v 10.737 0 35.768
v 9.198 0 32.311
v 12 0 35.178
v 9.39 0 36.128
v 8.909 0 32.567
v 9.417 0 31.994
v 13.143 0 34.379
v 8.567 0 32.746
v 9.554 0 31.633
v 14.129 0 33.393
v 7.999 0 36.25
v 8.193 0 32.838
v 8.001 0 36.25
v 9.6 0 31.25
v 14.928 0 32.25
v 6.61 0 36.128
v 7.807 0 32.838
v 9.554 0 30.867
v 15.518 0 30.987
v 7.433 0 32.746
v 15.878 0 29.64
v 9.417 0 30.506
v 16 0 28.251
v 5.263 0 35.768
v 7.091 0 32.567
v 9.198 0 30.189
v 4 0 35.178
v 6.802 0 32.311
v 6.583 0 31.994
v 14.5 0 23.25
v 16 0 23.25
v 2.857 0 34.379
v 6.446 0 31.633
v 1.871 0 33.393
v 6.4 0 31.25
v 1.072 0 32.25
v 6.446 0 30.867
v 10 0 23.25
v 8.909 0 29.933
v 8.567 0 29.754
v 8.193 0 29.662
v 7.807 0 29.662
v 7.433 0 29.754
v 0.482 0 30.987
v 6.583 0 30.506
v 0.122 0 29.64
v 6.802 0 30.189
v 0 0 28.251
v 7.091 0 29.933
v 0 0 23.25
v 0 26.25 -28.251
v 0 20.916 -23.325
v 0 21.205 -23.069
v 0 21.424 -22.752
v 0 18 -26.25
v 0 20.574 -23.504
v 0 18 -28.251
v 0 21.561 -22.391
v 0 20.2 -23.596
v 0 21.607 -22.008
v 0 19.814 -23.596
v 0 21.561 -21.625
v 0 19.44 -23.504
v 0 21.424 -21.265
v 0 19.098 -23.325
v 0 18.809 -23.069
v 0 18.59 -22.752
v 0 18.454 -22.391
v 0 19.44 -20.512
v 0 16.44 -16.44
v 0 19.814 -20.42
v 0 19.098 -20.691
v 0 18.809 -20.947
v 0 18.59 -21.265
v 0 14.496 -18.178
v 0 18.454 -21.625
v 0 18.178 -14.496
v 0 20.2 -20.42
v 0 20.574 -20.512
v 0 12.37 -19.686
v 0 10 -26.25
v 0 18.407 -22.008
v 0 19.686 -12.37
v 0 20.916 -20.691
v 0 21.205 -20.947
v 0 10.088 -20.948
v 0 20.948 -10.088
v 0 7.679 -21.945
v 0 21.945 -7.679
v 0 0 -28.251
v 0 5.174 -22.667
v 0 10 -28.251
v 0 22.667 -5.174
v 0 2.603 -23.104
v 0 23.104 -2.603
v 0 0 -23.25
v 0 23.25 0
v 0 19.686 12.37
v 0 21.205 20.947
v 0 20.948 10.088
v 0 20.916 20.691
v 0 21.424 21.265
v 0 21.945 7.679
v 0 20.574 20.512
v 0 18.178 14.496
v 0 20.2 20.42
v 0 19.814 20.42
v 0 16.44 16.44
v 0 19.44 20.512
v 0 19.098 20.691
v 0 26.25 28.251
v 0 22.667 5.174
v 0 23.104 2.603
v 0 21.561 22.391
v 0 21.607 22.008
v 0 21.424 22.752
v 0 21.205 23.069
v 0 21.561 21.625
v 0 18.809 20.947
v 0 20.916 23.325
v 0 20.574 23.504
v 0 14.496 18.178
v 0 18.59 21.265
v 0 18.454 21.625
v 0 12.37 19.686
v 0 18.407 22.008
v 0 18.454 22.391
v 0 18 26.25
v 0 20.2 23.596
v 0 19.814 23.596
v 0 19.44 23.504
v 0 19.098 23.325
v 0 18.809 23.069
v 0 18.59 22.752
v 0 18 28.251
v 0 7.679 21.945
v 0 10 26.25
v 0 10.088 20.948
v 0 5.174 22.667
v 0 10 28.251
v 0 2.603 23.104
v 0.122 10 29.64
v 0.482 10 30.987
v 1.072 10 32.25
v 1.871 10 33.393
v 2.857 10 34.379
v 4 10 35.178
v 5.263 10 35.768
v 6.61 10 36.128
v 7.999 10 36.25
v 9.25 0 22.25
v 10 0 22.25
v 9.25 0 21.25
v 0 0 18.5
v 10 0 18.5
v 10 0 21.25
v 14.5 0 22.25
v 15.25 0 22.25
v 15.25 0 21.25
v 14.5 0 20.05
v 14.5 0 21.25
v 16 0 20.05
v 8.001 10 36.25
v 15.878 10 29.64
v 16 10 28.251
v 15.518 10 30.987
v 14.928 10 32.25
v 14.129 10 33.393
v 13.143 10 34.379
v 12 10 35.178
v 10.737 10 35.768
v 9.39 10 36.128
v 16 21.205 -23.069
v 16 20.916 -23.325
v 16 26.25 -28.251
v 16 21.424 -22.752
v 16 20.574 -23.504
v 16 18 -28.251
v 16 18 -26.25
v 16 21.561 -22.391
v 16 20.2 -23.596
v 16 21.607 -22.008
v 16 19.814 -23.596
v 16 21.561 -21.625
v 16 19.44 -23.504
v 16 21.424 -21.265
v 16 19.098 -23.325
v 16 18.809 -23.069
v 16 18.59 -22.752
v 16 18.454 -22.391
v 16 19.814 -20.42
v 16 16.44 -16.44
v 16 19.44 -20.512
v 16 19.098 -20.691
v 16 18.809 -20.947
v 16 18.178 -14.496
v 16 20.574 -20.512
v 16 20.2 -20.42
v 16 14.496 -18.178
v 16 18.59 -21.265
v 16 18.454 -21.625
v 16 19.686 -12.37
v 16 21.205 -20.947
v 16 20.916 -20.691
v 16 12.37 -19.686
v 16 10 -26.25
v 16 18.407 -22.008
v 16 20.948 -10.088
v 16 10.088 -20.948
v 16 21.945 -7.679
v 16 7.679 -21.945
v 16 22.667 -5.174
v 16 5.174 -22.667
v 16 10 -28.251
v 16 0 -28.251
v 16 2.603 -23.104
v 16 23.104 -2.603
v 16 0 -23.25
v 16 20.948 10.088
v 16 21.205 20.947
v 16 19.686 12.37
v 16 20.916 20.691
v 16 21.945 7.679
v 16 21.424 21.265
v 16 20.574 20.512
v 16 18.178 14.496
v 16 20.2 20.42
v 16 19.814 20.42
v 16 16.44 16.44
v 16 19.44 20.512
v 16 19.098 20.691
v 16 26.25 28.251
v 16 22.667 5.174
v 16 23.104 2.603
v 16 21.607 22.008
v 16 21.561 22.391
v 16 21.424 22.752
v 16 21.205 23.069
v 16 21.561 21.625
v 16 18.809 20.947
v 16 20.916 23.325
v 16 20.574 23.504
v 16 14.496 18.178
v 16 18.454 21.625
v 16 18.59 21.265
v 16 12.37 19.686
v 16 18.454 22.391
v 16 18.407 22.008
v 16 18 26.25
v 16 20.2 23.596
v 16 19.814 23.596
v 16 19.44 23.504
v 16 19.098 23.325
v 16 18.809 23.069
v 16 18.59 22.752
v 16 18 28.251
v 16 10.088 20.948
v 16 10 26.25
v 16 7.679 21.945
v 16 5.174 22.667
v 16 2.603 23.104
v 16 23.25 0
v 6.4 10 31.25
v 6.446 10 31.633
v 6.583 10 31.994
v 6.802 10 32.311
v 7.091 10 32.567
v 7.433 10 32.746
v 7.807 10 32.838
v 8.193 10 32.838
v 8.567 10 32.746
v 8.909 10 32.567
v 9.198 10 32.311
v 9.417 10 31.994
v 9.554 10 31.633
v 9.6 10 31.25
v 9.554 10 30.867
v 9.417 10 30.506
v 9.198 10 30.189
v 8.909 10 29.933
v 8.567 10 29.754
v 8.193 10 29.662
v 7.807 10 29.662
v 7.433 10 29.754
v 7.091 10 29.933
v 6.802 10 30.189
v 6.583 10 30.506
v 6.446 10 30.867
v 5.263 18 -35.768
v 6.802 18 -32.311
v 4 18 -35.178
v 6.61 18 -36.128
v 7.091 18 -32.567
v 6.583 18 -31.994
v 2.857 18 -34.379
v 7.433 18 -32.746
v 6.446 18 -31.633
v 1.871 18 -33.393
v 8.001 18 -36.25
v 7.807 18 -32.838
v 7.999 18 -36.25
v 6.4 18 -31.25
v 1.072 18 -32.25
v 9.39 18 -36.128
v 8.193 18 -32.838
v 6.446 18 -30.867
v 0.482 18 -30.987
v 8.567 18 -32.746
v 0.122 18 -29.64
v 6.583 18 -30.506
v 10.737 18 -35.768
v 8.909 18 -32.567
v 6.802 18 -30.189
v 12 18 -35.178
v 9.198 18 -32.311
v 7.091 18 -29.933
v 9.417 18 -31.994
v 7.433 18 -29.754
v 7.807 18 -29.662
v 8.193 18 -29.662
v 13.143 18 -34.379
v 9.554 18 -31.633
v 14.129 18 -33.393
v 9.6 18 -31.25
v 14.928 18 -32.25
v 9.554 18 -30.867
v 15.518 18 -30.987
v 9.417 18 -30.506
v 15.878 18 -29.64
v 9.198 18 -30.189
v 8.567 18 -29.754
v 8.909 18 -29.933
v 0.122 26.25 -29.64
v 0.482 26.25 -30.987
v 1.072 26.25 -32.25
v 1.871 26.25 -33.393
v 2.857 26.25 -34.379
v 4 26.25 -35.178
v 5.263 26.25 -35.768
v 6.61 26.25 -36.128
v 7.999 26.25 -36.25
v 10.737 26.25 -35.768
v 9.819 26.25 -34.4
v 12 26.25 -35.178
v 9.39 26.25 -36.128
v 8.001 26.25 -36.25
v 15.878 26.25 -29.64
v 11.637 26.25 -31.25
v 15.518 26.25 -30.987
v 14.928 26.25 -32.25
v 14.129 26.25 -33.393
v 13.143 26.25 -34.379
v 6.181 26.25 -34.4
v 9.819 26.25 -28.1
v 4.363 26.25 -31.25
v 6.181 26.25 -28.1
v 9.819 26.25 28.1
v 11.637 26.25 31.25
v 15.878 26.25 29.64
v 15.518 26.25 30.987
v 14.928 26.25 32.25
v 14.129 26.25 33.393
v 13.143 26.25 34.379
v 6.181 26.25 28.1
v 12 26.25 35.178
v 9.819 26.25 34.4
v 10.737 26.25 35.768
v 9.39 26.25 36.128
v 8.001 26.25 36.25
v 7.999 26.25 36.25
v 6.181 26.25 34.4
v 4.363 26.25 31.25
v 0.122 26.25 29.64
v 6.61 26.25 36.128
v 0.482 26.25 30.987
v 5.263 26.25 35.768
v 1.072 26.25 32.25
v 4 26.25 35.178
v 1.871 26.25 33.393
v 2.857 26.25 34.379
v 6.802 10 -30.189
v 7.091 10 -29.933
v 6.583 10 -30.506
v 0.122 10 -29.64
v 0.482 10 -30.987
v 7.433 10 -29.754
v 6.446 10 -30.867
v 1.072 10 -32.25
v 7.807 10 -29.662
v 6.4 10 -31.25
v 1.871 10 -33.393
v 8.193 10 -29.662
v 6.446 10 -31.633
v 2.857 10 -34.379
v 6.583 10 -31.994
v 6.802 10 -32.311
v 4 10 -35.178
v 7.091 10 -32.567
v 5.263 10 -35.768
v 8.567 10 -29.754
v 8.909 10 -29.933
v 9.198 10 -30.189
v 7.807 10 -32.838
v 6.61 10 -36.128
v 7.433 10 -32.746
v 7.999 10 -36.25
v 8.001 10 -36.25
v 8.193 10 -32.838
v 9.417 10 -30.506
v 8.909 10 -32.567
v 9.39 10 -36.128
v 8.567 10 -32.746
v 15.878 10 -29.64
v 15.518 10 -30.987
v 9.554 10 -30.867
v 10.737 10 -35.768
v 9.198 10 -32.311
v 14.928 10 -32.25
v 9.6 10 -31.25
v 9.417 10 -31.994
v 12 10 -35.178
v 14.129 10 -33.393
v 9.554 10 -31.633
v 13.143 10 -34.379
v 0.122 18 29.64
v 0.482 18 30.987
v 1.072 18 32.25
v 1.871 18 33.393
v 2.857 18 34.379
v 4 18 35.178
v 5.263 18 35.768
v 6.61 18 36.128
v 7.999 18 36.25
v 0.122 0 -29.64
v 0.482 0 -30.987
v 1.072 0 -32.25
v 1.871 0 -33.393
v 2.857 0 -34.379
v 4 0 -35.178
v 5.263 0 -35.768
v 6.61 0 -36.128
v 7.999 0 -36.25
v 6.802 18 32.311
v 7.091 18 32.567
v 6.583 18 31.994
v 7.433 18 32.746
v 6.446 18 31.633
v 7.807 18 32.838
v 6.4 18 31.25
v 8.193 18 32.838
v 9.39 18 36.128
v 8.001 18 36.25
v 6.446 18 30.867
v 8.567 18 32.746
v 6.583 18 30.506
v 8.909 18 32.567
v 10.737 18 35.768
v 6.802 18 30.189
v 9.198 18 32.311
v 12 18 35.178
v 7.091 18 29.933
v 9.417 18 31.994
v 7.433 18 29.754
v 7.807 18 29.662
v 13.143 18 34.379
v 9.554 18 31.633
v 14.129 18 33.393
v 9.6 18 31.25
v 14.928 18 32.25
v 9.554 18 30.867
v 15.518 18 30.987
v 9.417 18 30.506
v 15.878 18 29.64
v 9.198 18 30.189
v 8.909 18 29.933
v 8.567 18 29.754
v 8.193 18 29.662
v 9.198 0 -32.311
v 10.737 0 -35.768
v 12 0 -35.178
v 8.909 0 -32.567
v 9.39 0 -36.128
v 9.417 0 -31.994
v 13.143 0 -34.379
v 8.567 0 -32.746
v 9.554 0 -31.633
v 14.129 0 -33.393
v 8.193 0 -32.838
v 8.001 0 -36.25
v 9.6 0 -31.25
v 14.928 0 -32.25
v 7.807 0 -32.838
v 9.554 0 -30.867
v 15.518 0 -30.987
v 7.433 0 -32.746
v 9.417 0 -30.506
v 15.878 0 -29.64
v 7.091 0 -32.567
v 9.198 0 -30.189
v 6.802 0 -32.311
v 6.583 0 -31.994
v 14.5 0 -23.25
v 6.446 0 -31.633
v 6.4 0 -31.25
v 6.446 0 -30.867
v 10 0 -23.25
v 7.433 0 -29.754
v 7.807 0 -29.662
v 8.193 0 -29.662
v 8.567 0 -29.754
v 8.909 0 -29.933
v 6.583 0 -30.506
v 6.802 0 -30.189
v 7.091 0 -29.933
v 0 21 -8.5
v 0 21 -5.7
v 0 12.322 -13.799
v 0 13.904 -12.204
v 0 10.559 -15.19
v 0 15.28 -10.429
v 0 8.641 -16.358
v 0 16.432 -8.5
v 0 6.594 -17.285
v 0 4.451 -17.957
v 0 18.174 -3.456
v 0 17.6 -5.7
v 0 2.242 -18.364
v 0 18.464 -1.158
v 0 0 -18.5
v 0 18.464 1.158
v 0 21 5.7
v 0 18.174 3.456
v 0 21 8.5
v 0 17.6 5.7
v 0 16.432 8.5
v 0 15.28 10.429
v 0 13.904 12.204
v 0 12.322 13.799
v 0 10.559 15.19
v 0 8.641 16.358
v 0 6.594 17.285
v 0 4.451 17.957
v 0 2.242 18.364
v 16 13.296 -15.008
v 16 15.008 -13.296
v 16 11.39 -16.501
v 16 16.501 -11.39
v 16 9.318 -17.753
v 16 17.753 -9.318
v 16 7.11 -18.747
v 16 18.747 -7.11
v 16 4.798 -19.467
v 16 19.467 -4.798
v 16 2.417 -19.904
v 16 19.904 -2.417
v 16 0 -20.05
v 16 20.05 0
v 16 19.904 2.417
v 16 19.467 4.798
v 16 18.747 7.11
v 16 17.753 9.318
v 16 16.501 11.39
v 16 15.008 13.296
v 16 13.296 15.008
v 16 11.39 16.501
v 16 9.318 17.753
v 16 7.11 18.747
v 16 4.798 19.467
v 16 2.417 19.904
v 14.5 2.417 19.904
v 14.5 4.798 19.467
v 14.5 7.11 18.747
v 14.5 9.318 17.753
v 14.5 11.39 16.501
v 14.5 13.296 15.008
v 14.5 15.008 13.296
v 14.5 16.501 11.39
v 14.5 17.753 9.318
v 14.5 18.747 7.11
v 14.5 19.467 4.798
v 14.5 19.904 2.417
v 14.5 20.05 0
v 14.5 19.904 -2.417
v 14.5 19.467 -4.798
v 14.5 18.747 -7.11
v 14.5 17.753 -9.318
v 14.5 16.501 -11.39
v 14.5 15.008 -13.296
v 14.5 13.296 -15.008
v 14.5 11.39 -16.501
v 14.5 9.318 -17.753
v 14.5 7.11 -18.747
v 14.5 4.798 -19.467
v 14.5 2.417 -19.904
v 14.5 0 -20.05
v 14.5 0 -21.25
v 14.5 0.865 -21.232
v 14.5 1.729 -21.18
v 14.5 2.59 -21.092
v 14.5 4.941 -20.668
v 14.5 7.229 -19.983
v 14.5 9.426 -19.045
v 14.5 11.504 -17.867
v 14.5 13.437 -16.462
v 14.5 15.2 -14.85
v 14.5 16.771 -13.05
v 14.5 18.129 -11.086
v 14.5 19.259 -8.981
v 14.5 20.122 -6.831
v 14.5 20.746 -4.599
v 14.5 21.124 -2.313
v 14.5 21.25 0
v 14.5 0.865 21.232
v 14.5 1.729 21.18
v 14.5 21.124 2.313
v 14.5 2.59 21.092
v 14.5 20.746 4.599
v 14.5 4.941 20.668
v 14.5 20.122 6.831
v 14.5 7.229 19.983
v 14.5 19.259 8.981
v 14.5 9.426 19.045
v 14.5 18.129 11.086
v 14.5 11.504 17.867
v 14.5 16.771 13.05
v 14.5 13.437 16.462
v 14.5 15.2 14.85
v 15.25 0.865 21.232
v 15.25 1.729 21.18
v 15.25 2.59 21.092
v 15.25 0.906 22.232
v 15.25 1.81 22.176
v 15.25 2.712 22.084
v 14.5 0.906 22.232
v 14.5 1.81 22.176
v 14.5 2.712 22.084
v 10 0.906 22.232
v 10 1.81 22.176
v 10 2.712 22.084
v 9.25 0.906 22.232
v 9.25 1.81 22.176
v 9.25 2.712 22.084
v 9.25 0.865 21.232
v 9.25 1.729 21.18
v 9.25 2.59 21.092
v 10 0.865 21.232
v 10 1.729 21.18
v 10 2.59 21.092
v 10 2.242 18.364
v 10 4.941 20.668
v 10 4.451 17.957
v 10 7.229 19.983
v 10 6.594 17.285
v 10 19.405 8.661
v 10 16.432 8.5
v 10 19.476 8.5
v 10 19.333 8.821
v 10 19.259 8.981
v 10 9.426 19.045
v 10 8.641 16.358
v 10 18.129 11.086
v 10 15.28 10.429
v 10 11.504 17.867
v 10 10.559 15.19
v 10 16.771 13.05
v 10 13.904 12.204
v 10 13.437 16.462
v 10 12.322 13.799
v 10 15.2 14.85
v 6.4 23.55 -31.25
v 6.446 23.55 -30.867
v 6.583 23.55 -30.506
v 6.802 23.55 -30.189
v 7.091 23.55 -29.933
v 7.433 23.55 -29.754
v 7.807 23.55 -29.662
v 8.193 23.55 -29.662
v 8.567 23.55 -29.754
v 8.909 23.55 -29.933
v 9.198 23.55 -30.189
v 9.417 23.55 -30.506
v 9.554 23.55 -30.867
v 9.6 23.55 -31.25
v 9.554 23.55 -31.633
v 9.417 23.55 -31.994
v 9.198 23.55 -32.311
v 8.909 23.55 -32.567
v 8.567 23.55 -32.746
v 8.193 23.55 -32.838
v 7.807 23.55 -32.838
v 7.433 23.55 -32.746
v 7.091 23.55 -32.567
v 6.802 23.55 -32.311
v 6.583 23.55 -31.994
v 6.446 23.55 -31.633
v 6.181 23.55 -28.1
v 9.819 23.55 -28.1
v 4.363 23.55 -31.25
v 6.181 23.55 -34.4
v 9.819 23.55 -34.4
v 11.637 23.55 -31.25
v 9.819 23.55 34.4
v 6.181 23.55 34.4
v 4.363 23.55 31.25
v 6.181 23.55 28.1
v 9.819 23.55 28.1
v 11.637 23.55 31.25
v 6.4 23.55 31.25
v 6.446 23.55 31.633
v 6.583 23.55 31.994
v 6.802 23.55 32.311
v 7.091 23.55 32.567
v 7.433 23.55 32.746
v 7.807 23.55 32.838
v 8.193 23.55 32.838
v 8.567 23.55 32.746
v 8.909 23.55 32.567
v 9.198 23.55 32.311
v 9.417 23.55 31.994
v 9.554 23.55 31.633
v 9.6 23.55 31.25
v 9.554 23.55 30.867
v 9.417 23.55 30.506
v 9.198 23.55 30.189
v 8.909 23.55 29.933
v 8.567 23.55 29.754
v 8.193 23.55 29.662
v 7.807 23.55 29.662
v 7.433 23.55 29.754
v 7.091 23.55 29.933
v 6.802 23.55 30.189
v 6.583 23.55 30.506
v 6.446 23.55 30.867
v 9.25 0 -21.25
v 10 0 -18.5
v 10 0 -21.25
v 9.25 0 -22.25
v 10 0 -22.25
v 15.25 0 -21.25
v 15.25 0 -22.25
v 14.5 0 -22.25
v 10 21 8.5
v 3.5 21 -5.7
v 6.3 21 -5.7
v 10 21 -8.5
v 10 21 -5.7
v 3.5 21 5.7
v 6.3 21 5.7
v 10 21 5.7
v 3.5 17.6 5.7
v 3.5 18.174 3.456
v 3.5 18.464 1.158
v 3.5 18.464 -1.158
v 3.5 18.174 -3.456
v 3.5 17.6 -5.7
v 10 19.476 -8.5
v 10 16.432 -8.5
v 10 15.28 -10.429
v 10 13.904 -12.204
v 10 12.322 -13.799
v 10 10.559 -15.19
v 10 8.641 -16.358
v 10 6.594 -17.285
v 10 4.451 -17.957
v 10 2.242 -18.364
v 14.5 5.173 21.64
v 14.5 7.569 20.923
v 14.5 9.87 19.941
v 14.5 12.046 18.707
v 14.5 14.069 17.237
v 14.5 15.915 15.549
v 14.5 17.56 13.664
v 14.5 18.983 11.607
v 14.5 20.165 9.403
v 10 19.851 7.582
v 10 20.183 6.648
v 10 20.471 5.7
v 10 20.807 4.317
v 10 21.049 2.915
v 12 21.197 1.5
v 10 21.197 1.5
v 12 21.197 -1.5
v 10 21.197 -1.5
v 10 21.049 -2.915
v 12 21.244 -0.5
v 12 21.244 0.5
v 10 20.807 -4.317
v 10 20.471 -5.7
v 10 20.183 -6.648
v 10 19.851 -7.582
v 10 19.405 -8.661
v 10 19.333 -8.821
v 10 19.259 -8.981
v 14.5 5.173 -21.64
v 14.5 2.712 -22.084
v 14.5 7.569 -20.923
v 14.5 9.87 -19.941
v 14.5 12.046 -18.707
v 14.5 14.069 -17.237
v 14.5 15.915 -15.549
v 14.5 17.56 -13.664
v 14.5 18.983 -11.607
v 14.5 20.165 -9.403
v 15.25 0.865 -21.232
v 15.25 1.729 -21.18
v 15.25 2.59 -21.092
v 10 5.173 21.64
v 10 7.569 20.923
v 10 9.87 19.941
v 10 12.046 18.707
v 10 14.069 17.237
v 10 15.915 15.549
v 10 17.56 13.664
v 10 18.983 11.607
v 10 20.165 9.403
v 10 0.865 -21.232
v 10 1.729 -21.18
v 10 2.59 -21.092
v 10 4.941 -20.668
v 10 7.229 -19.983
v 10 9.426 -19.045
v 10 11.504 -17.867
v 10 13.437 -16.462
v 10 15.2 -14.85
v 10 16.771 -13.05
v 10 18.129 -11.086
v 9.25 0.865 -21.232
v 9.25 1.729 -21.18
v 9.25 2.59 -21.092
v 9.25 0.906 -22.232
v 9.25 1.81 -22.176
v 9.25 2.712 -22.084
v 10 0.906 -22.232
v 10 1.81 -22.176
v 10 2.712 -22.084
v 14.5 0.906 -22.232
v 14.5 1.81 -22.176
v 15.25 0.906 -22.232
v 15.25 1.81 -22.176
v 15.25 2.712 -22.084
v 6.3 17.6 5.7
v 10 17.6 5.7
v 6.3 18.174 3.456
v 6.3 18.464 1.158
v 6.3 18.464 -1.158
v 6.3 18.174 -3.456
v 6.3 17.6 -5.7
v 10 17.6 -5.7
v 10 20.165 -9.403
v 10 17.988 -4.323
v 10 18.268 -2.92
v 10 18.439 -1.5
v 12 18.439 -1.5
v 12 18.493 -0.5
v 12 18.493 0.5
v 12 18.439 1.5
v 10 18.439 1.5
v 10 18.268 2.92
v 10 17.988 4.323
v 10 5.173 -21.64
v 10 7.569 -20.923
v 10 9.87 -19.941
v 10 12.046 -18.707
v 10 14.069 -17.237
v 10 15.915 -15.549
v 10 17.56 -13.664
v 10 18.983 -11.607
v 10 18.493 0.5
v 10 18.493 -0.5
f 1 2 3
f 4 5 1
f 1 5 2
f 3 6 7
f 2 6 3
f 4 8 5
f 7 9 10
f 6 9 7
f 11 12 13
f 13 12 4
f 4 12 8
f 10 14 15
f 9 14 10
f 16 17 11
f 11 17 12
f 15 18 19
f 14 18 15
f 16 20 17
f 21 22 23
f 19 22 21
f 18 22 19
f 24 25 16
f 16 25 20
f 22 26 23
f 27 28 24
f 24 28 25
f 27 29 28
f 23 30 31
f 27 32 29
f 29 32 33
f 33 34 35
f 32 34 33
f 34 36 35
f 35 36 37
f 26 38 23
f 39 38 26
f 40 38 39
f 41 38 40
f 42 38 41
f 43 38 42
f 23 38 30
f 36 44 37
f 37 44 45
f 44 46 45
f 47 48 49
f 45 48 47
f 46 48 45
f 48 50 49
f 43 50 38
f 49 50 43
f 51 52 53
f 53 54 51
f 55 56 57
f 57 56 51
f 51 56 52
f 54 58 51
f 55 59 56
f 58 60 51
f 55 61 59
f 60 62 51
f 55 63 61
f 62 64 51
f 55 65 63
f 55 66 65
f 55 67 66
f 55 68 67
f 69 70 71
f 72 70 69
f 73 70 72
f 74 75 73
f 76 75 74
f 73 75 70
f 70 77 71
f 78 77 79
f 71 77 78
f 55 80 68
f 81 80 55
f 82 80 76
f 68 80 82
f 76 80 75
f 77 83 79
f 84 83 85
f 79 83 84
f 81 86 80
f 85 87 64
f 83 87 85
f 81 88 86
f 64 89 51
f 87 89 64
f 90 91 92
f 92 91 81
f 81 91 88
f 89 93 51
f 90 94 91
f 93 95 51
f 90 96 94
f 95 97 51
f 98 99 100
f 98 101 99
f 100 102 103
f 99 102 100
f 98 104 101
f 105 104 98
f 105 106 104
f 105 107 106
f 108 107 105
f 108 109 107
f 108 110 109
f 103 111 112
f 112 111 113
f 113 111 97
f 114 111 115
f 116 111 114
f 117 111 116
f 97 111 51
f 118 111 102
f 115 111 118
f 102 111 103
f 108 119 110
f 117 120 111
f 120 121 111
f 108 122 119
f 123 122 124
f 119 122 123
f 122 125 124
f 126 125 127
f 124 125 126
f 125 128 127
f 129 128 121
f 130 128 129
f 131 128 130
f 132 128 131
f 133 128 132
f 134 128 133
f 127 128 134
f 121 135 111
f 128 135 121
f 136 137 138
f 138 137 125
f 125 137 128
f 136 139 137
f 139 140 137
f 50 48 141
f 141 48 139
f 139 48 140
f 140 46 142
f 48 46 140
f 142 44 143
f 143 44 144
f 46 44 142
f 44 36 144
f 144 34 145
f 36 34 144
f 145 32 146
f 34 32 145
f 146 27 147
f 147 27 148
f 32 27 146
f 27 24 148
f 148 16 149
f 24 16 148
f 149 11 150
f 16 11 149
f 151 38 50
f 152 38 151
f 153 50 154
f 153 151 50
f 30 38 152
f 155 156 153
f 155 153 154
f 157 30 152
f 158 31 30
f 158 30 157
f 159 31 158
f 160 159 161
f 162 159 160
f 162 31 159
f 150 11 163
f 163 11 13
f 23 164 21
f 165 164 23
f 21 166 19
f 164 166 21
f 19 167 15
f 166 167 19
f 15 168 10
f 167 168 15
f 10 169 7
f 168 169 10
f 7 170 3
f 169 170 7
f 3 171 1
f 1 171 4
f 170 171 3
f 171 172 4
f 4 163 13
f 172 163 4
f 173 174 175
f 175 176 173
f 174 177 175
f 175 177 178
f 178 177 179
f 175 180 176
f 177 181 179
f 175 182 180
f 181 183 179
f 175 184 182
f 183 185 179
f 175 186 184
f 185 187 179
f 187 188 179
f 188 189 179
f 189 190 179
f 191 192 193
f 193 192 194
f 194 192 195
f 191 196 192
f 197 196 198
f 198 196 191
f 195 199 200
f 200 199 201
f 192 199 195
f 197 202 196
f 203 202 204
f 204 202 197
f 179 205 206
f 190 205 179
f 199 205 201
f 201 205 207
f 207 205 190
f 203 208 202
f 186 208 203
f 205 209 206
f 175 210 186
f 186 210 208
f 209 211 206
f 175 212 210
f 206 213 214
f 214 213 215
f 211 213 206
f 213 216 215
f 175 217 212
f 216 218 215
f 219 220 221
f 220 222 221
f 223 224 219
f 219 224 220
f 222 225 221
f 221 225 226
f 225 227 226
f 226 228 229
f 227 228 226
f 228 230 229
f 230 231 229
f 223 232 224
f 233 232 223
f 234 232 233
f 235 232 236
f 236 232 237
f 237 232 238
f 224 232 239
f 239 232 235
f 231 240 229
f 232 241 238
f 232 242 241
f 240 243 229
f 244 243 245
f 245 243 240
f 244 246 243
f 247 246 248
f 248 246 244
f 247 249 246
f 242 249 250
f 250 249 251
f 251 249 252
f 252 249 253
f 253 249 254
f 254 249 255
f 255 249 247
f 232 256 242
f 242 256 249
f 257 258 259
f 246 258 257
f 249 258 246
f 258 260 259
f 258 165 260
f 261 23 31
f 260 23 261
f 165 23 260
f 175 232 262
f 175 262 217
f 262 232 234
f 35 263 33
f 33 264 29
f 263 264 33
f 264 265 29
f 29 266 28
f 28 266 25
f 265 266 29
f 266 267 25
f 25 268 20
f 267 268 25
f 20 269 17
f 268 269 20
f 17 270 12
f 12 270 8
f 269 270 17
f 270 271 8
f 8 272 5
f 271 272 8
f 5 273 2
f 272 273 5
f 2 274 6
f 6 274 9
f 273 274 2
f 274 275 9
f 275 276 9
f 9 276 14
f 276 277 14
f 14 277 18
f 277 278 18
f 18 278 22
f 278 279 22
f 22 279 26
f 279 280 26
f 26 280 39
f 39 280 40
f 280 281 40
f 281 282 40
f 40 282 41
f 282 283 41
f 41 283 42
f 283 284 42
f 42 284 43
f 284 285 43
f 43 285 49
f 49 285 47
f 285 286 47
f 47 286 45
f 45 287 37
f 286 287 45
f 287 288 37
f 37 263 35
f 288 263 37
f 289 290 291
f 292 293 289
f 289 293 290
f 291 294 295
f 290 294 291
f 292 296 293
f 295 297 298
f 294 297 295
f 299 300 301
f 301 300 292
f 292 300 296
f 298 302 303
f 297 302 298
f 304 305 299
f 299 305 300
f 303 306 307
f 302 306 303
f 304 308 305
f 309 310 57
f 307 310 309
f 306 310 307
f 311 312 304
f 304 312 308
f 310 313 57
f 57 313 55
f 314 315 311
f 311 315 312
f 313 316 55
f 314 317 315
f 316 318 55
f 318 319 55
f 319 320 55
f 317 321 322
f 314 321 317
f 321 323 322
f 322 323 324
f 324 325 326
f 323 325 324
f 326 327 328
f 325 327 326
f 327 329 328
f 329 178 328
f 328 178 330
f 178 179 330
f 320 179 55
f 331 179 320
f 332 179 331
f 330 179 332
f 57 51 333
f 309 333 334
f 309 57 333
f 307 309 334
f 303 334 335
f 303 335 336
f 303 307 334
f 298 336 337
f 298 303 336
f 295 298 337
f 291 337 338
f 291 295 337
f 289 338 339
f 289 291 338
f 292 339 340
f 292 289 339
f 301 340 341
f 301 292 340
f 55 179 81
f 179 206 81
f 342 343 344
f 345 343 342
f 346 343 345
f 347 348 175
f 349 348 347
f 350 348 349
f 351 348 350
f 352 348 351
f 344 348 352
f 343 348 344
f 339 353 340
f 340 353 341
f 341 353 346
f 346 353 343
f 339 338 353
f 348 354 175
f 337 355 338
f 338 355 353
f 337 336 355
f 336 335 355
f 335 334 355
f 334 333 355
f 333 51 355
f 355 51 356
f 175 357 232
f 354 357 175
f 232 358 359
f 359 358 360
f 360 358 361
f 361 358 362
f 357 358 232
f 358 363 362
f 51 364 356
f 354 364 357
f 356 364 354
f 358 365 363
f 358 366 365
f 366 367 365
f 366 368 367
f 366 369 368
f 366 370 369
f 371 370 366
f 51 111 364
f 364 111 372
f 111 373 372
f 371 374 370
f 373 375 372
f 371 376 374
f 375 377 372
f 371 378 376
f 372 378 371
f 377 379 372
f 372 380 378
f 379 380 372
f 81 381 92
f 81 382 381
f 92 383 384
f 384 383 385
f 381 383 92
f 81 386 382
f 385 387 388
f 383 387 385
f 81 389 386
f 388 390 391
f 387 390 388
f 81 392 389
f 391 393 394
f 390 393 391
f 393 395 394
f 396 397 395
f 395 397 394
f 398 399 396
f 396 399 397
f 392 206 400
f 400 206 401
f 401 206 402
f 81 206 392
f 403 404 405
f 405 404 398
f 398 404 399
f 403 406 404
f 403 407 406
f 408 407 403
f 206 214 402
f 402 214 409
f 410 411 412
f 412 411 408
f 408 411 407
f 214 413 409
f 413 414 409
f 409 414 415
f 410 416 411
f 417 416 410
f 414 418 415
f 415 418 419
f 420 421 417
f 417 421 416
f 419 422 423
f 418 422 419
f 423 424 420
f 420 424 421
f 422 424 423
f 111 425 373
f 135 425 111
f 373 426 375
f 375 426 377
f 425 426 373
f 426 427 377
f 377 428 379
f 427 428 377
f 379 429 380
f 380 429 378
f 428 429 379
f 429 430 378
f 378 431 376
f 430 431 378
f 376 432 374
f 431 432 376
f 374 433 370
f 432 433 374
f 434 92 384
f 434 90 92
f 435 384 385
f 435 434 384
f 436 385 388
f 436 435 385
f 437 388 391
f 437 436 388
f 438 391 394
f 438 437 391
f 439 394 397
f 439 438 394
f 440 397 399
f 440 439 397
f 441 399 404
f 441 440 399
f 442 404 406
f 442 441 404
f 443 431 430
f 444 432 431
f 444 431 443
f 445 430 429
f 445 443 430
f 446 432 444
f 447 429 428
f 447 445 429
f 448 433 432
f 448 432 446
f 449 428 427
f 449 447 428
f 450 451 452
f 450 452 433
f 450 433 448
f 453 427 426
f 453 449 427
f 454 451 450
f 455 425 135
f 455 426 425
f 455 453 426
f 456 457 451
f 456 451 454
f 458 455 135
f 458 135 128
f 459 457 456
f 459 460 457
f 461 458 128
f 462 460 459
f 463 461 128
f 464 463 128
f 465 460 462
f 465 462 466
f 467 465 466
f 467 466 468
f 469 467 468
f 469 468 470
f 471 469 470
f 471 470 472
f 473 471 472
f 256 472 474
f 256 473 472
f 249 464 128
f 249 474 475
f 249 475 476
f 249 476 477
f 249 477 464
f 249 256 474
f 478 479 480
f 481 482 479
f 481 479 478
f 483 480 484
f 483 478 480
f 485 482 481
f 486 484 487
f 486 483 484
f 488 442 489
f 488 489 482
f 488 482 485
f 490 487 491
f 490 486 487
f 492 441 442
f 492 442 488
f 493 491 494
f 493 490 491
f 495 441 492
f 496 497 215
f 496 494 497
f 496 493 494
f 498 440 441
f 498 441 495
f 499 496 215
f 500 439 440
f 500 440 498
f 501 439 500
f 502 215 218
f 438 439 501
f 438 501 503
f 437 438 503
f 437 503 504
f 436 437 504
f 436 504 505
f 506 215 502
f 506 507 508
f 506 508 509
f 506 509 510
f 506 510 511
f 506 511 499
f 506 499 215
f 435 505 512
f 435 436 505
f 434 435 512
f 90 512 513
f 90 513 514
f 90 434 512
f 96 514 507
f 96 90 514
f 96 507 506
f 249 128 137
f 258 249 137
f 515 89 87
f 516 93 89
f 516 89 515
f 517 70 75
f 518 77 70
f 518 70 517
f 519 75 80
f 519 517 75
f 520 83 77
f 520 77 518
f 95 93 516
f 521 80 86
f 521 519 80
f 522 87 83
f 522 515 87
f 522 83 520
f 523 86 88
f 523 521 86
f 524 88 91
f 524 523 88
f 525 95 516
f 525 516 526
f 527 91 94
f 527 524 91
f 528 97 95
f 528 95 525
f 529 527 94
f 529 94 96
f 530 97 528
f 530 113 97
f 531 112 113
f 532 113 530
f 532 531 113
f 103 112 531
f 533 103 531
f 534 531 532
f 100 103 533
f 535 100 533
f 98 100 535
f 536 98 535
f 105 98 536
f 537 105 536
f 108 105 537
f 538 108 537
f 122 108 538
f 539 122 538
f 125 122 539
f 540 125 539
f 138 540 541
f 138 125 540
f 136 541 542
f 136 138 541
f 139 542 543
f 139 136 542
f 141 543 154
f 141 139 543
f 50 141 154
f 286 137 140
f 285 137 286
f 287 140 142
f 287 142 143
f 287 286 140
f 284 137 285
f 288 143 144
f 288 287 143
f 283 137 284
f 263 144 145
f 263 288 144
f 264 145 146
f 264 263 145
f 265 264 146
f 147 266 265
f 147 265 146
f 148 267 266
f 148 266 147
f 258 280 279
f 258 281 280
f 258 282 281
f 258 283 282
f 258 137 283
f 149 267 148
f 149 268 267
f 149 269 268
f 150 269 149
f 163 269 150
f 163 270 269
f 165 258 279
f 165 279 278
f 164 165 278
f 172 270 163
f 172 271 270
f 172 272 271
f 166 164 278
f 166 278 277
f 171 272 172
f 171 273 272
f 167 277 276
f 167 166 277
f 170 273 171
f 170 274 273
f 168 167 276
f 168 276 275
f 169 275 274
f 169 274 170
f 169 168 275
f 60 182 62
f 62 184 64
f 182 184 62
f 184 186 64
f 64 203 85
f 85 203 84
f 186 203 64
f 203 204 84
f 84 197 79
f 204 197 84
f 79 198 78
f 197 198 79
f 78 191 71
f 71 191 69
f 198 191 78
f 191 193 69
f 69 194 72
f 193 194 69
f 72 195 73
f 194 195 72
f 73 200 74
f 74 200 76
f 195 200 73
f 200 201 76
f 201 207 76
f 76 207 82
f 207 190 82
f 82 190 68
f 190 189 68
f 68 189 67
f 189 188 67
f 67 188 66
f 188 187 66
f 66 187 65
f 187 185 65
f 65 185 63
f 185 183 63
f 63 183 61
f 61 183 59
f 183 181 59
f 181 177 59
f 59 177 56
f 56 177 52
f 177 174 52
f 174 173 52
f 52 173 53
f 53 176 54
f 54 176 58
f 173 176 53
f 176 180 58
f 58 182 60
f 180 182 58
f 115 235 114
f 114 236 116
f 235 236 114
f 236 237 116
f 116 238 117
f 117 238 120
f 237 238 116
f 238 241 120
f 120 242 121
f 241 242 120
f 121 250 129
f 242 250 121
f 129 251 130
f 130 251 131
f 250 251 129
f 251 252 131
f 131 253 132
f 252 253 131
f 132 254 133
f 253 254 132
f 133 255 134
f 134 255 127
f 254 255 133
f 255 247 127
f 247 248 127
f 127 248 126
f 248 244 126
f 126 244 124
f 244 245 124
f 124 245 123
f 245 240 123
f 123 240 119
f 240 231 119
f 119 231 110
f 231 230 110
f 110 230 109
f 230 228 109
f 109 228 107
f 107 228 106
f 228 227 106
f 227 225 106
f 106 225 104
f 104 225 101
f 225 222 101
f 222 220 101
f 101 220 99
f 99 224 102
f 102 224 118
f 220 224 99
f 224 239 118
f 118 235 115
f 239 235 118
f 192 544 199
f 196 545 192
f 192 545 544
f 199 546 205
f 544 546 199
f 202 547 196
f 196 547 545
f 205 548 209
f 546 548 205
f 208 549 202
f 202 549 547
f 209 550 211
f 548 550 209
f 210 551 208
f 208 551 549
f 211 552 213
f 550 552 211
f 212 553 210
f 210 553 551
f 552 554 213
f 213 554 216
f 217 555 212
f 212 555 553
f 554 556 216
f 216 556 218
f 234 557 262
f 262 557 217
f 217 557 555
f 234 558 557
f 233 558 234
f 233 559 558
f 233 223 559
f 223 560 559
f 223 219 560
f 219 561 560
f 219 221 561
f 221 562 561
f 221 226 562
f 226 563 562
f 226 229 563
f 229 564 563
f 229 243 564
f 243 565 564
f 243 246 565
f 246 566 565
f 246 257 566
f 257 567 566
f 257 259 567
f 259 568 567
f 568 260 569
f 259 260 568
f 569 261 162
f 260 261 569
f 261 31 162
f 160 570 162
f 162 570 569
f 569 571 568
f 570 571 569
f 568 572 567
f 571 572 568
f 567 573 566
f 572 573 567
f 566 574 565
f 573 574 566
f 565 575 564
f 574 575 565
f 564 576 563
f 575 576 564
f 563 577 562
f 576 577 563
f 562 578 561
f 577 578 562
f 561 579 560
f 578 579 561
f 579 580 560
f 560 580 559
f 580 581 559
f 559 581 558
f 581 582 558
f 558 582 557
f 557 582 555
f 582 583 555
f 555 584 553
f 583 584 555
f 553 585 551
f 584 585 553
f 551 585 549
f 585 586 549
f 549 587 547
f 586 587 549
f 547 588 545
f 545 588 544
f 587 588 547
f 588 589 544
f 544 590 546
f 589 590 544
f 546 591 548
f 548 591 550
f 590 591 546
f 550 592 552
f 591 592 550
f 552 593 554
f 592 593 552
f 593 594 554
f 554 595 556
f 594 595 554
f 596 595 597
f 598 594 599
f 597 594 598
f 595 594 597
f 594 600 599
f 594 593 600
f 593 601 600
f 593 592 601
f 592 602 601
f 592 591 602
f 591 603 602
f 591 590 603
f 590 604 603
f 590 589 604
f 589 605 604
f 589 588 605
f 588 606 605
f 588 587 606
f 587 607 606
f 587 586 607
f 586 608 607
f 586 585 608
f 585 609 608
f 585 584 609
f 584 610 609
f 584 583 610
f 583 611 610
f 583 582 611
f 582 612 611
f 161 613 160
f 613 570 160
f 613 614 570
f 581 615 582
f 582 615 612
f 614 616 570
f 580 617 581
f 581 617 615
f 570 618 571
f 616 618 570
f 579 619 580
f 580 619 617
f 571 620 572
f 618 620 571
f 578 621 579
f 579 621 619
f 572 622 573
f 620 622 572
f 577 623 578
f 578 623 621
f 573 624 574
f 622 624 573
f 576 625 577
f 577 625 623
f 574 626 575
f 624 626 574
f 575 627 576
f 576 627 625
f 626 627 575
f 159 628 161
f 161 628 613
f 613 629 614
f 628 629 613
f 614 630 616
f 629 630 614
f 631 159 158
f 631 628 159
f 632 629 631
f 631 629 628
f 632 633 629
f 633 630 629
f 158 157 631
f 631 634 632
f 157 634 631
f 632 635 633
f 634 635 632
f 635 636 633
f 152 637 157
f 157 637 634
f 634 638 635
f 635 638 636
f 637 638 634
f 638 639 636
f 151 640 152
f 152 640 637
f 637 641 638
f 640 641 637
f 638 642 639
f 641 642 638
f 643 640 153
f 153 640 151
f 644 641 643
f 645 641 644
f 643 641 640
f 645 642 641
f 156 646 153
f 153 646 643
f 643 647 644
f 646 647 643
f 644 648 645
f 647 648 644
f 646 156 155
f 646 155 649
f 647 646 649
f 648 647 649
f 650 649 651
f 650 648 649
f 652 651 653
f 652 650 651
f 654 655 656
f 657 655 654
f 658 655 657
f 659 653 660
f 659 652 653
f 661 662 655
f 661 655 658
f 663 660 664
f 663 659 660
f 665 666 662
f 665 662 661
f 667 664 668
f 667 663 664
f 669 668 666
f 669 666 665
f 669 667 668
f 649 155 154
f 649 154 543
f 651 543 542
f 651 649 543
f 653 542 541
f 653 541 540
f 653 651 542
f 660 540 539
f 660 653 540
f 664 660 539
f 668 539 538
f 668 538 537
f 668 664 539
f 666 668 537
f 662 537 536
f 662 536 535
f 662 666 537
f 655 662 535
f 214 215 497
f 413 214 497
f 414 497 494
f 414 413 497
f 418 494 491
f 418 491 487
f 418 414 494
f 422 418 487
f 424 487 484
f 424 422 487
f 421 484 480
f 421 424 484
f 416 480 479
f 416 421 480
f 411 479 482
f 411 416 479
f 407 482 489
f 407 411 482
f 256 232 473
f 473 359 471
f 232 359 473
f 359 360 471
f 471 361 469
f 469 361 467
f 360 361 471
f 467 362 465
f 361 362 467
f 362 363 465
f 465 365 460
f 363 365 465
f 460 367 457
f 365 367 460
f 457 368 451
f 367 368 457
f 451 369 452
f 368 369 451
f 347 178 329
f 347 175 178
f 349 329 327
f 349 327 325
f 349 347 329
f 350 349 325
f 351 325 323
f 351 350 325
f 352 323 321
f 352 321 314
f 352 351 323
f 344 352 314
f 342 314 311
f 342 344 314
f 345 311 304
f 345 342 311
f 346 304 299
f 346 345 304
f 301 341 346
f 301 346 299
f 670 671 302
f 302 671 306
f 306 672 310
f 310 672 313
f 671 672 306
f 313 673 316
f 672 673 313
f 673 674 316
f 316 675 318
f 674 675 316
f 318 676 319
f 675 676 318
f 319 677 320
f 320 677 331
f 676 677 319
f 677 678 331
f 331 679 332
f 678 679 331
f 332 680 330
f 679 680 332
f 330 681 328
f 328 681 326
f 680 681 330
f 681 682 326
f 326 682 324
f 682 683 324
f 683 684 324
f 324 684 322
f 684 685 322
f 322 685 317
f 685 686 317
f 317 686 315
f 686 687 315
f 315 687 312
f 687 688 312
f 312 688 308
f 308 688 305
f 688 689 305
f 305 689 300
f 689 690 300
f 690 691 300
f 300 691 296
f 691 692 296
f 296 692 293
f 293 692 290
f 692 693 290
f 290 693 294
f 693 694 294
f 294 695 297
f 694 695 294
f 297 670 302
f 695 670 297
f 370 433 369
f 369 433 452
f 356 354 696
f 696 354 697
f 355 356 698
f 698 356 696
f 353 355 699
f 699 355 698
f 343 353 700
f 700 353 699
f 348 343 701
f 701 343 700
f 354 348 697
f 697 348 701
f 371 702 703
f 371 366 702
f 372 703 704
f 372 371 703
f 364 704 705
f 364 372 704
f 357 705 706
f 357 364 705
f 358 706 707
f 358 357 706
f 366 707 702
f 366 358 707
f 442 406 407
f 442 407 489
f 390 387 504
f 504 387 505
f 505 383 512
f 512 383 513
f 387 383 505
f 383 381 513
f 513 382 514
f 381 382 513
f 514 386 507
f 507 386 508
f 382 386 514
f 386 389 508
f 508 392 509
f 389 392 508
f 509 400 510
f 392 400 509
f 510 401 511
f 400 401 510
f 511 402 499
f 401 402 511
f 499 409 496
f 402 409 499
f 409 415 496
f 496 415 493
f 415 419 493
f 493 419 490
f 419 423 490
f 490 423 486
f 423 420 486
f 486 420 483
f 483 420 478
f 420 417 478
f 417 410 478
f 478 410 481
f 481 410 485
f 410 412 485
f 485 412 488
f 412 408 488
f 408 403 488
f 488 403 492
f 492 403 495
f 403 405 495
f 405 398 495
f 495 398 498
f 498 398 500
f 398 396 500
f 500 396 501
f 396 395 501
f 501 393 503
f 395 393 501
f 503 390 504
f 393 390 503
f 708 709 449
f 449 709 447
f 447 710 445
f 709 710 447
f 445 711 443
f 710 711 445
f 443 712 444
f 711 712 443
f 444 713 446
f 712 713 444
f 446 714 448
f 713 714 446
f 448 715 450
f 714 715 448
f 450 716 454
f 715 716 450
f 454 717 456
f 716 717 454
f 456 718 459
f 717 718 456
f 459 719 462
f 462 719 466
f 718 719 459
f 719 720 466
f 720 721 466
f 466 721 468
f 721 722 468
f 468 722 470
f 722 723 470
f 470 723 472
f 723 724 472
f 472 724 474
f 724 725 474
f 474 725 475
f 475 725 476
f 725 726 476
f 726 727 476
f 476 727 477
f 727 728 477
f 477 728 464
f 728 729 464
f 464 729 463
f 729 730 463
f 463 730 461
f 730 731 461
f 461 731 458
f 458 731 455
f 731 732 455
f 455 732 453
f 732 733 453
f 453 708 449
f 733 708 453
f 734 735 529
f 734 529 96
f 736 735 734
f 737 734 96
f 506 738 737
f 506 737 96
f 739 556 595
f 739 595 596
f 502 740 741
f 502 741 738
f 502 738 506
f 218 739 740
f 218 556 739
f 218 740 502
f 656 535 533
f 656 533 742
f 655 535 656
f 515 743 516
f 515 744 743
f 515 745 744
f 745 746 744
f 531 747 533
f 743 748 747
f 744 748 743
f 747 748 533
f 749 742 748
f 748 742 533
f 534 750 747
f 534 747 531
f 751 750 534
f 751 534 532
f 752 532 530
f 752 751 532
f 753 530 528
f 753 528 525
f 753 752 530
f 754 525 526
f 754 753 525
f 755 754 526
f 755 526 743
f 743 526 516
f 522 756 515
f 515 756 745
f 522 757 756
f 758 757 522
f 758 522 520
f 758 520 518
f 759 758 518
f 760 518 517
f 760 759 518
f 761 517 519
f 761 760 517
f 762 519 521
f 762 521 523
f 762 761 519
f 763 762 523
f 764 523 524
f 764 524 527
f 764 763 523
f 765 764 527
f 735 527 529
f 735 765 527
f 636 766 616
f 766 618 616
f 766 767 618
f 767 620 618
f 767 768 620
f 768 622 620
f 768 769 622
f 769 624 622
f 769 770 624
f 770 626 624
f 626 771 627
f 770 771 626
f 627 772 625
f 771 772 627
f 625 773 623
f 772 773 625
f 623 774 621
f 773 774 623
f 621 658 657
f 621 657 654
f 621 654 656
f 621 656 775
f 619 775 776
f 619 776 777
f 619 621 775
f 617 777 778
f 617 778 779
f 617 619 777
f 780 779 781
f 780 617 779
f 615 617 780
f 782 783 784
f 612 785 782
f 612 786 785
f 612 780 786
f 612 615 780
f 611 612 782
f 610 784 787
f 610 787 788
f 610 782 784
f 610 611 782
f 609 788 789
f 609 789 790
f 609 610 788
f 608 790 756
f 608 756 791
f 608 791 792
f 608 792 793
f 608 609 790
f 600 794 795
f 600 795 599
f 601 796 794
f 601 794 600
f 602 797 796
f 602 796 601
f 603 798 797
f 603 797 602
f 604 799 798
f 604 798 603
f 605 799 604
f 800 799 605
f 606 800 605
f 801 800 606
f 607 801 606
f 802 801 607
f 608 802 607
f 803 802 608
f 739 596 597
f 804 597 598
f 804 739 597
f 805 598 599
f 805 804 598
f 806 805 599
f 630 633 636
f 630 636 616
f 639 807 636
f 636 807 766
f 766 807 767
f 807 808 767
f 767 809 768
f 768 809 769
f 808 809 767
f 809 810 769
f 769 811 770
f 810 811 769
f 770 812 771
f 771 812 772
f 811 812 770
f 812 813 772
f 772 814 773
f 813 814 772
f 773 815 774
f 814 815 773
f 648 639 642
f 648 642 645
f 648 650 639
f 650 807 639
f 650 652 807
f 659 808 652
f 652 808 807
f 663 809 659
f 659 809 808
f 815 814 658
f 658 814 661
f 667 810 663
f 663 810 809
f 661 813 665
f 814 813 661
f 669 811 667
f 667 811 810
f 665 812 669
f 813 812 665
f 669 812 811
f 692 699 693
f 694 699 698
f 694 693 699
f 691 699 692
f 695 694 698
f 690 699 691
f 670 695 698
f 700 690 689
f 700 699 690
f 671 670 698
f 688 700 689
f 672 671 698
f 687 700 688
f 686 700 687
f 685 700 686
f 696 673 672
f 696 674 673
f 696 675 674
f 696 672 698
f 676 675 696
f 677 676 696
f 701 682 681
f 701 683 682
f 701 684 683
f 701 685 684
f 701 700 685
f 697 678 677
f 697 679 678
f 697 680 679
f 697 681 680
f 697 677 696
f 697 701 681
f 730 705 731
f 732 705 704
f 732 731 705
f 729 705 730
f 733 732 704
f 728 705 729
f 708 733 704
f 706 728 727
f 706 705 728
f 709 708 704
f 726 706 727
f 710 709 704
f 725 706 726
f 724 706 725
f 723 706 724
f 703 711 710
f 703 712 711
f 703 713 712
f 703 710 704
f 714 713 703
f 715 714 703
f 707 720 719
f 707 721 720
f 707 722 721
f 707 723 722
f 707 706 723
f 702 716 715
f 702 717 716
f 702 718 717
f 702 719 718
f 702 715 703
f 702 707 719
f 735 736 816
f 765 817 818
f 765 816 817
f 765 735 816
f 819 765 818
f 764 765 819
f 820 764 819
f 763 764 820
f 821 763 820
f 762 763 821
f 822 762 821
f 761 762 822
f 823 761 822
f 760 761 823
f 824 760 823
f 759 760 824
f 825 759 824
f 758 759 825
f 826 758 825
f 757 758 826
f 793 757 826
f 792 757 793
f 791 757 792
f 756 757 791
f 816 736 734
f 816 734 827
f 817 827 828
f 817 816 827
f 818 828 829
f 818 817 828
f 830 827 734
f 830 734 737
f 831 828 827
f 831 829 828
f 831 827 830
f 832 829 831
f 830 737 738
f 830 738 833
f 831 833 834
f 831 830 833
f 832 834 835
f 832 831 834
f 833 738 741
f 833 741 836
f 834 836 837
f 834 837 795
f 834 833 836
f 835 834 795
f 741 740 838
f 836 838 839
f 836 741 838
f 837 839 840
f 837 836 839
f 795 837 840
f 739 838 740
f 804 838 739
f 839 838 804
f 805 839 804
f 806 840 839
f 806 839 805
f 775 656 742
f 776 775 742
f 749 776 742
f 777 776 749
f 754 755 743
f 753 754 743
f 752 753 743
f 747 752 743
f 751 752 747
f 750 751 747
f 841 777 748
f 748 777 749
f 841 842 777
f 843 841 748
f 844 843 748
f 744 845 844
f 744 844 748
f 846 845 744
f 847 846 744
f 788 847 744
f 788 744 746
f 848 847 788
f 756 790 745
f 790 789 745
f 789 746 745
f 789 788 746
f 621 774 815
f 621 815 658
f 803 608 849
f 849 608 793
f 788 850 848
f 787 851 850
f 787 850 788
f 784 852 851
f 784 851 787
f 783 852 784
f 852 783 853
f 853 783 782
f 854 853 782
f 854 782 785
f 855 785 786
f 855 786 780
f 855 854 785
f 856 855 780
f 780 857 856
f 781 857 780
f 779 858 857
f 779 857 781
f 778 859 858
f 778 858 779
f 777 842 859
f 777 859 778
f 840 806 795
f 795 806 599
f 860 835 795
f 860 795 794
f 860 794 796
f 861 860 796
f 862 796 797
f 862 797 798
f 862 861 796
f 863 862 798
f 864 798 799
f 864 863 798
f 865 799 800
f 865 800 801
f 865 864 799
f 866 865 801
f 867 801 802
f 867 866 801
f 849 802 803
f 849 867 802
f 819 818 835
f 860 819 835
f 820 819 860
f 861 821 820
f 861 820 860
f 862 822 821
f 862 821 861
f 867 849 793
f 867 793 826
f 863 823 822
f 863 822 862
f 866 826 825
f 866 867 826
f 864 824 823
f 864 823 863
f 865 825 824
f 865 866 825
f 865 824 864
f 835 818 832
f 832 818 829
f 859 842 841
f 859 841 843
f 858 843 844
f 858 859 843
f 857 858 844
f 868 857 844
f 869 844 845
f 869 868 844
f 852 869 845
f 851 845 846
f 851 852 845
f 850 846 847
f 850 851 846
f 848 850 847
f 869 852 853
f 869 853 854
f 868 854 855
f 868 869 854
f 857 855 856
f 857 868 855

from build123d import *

# Parameters (mm, degrees)
SKETCH001_W     = 23.25
SKETCH001_H     = 46.5
POCKET_DEPTH    = 16.001
POCKET001_DEPTH = 21
SKETCH003_W     = 4.5
SKETCH003_H     = 1
GROOVE_ANGLE    = 65
SKETCH004_W     = 6
SKETCH004_H     = 1
GROOVE001_ANGLE = 7
PAD_DEPTH       = 16
SKETCH006_W     = 8
SKETCH006_H     = 10
POCKET002_DEPTH = 16.001
SKETCH007_R     = 1.6
POCKET003_DEPTH = 26.251
POCKET004_DEPTH = 2.7
FILLET_R        = 7.999
SKETCH009_R     = 1.6
POCKET005_DEPTH = 16.001
PAD001_DEPTH    = 2


with BuildPart() as part:
    # Sketch → Revolution (revolve)
    with BuildSketch(Plane.XY):
        Polygon((0, -18.5), (10, -18.5), (10, -21.25), (14.5, -21.25), (14.5, -20.05), (16, -20.05), (16, -23.25), (14.5, -23.25), (10, -23.25), (0, -23.25), align=None)
    revolve(axis=Axis((0, 0, 0), (1, 0, 0)))

    # Sketch001 (on Face9 of Revolution) → Pocket (cut, through all)
    with BuildSketch(Plane.YZ.offset(16)):
        with Locations((-11.625, 0)):
            Rectangle(SKETCH001_W, SKETCH001_H)
    extrude(amount=-POCKET_DEPTH, mode=Mode.SUBTRACT)

    # Sketch002 (on Face2 of Pocket) → Pocket001 (cut)
    with BuildSketch(Plane.XZ):
        Polygon((0, 8.5), (10, 8.5), (10, 5.7), (6.3, 5.7), (6.3, -5.7), (10, -5.7), (10, -8.5), (0, -8.5), (0, -5.7), (3.5, -5.7), (3.5, 5.7), (0, 5.7), align=None)
    extrude(amount=-POCKET001_DEPTH, mode=Mode.SUBTRACT)

    # Sketch003 (on Face4 of Pocket001) → Groove (revolve, cut)
    with BuildSketch(Plane.XZ):
        with Locations((12.25, -21.75)):
            Rectangle(SKETCH003_W, SKETCH003_H)
    groove = revolve(axis=Axis((0, 0, 0), (1, 0, 0)), revolution_arc=GROOVE_ANGLE, mode=Mode.SUBTRACT)

    # Sketch004 (on Face4 of Groove) → Groove001 (revolve, cut)
    with BuildSketch(Plane.XZ):
        with Locations((12.25, -21.75)):
            Rectangle(SKETCH004_W, SKETCH004_H)
    groove001 = revolve(axis=Axis((0, 0, 0), (1, 0, 0)), revolution_arc=GROOVE001_ANGLE, mode=Mode.SUBTRACT)

    # Sketch005 (on Face12 of Groove001) → Pad (join)
    with BuildSketch(Plane(origin=(0, 0, 0), x_dir=(0, -1, 0), z_dir=(-1, 0, 0))):
        with BuildLine():
            ThreePointArc((0, 23.25), (-23.25, 0), (0, -23.25))
            Line((0, -36.25), (0, -23.25))
            Line((-26.25, -36.25), (0, -36.25))
            Line((-26.25, -36.25), (-26.25, 36.25))
            Line((-26.25, 36.25), (0, 36.25))
            Line((0, 36.25), (0, 23.25))
        make_face()
    extrude(amount=-PAD_DEPTH)

    # Sketch006 (on Face11 of Pad) → Pocket002 (cut, through all)
    with BuildSketch(Plane.YZ.offset(16)):
        with Locations((14, 31.25)):
            Rectangle(SKETCH006_W, SKETCH006_H)
        with Locations((14, -31.25)):
            Rectangle(SKETCH006_W, SKETCH006_H)
    extrude(amount=-POCKET002_DEPTH, mode=Mode.SUBTRACT)

    # Sketch007 (on Face40 of Pocket002) → Pocket003 (cut, through all)
    with BuildSketch(Plane(origin=(0, 26.25, 0), x_dir=(-1, 0, 0), z_dir=(0, 1, 0))):
        with Locations((-8, 31.25)):
            Circle(SKETCH007_R)
        with Locations((-8, -31.25)):
            Circle(SKETCH007_R)
    extrude(amount=-POCKET003_DEPTH, mode=Mode.SUBTRACT)

    # Sketch008 (on Face41 of Pocket003) → Pocket004 (cut)
    with BuildSketch(Plane(origin=(0, 26.25, 0), x_dir=(-1, 0, 0), z_dir=(0, 1, 0))):
        Polygon((-9.818653, 34.4), (-11.637307, 31.25), (-9.818653, 28.1), (-6.181347, 28.1), (-4.362693, 31.25), (-6.181347, 34.4), align=None)
        Polygon((-9.818653, -28.1), (-11.637307, -31.25), (-9.818653, -34.4), (-6.181347, -34.4), (-4.362693, -31.25), (-6.181347, -28.1), align=None)
    extrude(amount=-POCKET004_DEPTH, mode=Mode.SUBTRACT)

    # Mirrored: Groove001, Groove across XY
    add(groove001.mirror(Plane.XY), mode=Mode.SUBTRACT)
    add(groove.mirror(Plane.XY), mode=Mode.SUBTRACT)

    # Fillet
    fillet_edges = [part.edges().sort_by_distance(p)[0] for p in [
        (0, 22.125, 36.25),
        (0, 5, 36.25),
        (16, 5, 36.25),
        (16, 22.125, 36.25),
        (0, 22.125, -36.25),
        (0, 5, -36.25),
        (16, 22.125, -36.25),
        (16, 5, -36.25),
    ]]
    fillet(fillet_edges, radius=FILLET_R)

    # Sketch009 (on Face7 of Fillet) → Pocket005 (cut, through all)
    with BuildSketch(Plane.YZ.offset(16)):
        with Locations((20.007097, 22.008097)):
            Circle(SKETCH009_R)
        with Locations((20.007097, -22.008097)):
            Circle(SKETCH009_R)
    extrude(amount=-POCKET005_DEPTH, mode=Mode.SUBTRACT)

    # Sketch010 (on Face89 of Pocket005) → Pad001 (join)
    with BuildSketch(Plane.YZ.offset(10)):
        with BuildLine():
            ThreePointArc((18.439089, -1.5), (18.5, 0), (18.439089, 1.5))
            Line((18.439089, 1.5), (21.196993, 1.5))
            ThreePointArc((21.196993, -1.5), (21.25, 0), (21.196993, 1.5))
            Line((18.439089, -1.5), (21.196993, -1.5))
        make_face()
    extrude(amount=PAD001_DEPTH)


solid = part.part
